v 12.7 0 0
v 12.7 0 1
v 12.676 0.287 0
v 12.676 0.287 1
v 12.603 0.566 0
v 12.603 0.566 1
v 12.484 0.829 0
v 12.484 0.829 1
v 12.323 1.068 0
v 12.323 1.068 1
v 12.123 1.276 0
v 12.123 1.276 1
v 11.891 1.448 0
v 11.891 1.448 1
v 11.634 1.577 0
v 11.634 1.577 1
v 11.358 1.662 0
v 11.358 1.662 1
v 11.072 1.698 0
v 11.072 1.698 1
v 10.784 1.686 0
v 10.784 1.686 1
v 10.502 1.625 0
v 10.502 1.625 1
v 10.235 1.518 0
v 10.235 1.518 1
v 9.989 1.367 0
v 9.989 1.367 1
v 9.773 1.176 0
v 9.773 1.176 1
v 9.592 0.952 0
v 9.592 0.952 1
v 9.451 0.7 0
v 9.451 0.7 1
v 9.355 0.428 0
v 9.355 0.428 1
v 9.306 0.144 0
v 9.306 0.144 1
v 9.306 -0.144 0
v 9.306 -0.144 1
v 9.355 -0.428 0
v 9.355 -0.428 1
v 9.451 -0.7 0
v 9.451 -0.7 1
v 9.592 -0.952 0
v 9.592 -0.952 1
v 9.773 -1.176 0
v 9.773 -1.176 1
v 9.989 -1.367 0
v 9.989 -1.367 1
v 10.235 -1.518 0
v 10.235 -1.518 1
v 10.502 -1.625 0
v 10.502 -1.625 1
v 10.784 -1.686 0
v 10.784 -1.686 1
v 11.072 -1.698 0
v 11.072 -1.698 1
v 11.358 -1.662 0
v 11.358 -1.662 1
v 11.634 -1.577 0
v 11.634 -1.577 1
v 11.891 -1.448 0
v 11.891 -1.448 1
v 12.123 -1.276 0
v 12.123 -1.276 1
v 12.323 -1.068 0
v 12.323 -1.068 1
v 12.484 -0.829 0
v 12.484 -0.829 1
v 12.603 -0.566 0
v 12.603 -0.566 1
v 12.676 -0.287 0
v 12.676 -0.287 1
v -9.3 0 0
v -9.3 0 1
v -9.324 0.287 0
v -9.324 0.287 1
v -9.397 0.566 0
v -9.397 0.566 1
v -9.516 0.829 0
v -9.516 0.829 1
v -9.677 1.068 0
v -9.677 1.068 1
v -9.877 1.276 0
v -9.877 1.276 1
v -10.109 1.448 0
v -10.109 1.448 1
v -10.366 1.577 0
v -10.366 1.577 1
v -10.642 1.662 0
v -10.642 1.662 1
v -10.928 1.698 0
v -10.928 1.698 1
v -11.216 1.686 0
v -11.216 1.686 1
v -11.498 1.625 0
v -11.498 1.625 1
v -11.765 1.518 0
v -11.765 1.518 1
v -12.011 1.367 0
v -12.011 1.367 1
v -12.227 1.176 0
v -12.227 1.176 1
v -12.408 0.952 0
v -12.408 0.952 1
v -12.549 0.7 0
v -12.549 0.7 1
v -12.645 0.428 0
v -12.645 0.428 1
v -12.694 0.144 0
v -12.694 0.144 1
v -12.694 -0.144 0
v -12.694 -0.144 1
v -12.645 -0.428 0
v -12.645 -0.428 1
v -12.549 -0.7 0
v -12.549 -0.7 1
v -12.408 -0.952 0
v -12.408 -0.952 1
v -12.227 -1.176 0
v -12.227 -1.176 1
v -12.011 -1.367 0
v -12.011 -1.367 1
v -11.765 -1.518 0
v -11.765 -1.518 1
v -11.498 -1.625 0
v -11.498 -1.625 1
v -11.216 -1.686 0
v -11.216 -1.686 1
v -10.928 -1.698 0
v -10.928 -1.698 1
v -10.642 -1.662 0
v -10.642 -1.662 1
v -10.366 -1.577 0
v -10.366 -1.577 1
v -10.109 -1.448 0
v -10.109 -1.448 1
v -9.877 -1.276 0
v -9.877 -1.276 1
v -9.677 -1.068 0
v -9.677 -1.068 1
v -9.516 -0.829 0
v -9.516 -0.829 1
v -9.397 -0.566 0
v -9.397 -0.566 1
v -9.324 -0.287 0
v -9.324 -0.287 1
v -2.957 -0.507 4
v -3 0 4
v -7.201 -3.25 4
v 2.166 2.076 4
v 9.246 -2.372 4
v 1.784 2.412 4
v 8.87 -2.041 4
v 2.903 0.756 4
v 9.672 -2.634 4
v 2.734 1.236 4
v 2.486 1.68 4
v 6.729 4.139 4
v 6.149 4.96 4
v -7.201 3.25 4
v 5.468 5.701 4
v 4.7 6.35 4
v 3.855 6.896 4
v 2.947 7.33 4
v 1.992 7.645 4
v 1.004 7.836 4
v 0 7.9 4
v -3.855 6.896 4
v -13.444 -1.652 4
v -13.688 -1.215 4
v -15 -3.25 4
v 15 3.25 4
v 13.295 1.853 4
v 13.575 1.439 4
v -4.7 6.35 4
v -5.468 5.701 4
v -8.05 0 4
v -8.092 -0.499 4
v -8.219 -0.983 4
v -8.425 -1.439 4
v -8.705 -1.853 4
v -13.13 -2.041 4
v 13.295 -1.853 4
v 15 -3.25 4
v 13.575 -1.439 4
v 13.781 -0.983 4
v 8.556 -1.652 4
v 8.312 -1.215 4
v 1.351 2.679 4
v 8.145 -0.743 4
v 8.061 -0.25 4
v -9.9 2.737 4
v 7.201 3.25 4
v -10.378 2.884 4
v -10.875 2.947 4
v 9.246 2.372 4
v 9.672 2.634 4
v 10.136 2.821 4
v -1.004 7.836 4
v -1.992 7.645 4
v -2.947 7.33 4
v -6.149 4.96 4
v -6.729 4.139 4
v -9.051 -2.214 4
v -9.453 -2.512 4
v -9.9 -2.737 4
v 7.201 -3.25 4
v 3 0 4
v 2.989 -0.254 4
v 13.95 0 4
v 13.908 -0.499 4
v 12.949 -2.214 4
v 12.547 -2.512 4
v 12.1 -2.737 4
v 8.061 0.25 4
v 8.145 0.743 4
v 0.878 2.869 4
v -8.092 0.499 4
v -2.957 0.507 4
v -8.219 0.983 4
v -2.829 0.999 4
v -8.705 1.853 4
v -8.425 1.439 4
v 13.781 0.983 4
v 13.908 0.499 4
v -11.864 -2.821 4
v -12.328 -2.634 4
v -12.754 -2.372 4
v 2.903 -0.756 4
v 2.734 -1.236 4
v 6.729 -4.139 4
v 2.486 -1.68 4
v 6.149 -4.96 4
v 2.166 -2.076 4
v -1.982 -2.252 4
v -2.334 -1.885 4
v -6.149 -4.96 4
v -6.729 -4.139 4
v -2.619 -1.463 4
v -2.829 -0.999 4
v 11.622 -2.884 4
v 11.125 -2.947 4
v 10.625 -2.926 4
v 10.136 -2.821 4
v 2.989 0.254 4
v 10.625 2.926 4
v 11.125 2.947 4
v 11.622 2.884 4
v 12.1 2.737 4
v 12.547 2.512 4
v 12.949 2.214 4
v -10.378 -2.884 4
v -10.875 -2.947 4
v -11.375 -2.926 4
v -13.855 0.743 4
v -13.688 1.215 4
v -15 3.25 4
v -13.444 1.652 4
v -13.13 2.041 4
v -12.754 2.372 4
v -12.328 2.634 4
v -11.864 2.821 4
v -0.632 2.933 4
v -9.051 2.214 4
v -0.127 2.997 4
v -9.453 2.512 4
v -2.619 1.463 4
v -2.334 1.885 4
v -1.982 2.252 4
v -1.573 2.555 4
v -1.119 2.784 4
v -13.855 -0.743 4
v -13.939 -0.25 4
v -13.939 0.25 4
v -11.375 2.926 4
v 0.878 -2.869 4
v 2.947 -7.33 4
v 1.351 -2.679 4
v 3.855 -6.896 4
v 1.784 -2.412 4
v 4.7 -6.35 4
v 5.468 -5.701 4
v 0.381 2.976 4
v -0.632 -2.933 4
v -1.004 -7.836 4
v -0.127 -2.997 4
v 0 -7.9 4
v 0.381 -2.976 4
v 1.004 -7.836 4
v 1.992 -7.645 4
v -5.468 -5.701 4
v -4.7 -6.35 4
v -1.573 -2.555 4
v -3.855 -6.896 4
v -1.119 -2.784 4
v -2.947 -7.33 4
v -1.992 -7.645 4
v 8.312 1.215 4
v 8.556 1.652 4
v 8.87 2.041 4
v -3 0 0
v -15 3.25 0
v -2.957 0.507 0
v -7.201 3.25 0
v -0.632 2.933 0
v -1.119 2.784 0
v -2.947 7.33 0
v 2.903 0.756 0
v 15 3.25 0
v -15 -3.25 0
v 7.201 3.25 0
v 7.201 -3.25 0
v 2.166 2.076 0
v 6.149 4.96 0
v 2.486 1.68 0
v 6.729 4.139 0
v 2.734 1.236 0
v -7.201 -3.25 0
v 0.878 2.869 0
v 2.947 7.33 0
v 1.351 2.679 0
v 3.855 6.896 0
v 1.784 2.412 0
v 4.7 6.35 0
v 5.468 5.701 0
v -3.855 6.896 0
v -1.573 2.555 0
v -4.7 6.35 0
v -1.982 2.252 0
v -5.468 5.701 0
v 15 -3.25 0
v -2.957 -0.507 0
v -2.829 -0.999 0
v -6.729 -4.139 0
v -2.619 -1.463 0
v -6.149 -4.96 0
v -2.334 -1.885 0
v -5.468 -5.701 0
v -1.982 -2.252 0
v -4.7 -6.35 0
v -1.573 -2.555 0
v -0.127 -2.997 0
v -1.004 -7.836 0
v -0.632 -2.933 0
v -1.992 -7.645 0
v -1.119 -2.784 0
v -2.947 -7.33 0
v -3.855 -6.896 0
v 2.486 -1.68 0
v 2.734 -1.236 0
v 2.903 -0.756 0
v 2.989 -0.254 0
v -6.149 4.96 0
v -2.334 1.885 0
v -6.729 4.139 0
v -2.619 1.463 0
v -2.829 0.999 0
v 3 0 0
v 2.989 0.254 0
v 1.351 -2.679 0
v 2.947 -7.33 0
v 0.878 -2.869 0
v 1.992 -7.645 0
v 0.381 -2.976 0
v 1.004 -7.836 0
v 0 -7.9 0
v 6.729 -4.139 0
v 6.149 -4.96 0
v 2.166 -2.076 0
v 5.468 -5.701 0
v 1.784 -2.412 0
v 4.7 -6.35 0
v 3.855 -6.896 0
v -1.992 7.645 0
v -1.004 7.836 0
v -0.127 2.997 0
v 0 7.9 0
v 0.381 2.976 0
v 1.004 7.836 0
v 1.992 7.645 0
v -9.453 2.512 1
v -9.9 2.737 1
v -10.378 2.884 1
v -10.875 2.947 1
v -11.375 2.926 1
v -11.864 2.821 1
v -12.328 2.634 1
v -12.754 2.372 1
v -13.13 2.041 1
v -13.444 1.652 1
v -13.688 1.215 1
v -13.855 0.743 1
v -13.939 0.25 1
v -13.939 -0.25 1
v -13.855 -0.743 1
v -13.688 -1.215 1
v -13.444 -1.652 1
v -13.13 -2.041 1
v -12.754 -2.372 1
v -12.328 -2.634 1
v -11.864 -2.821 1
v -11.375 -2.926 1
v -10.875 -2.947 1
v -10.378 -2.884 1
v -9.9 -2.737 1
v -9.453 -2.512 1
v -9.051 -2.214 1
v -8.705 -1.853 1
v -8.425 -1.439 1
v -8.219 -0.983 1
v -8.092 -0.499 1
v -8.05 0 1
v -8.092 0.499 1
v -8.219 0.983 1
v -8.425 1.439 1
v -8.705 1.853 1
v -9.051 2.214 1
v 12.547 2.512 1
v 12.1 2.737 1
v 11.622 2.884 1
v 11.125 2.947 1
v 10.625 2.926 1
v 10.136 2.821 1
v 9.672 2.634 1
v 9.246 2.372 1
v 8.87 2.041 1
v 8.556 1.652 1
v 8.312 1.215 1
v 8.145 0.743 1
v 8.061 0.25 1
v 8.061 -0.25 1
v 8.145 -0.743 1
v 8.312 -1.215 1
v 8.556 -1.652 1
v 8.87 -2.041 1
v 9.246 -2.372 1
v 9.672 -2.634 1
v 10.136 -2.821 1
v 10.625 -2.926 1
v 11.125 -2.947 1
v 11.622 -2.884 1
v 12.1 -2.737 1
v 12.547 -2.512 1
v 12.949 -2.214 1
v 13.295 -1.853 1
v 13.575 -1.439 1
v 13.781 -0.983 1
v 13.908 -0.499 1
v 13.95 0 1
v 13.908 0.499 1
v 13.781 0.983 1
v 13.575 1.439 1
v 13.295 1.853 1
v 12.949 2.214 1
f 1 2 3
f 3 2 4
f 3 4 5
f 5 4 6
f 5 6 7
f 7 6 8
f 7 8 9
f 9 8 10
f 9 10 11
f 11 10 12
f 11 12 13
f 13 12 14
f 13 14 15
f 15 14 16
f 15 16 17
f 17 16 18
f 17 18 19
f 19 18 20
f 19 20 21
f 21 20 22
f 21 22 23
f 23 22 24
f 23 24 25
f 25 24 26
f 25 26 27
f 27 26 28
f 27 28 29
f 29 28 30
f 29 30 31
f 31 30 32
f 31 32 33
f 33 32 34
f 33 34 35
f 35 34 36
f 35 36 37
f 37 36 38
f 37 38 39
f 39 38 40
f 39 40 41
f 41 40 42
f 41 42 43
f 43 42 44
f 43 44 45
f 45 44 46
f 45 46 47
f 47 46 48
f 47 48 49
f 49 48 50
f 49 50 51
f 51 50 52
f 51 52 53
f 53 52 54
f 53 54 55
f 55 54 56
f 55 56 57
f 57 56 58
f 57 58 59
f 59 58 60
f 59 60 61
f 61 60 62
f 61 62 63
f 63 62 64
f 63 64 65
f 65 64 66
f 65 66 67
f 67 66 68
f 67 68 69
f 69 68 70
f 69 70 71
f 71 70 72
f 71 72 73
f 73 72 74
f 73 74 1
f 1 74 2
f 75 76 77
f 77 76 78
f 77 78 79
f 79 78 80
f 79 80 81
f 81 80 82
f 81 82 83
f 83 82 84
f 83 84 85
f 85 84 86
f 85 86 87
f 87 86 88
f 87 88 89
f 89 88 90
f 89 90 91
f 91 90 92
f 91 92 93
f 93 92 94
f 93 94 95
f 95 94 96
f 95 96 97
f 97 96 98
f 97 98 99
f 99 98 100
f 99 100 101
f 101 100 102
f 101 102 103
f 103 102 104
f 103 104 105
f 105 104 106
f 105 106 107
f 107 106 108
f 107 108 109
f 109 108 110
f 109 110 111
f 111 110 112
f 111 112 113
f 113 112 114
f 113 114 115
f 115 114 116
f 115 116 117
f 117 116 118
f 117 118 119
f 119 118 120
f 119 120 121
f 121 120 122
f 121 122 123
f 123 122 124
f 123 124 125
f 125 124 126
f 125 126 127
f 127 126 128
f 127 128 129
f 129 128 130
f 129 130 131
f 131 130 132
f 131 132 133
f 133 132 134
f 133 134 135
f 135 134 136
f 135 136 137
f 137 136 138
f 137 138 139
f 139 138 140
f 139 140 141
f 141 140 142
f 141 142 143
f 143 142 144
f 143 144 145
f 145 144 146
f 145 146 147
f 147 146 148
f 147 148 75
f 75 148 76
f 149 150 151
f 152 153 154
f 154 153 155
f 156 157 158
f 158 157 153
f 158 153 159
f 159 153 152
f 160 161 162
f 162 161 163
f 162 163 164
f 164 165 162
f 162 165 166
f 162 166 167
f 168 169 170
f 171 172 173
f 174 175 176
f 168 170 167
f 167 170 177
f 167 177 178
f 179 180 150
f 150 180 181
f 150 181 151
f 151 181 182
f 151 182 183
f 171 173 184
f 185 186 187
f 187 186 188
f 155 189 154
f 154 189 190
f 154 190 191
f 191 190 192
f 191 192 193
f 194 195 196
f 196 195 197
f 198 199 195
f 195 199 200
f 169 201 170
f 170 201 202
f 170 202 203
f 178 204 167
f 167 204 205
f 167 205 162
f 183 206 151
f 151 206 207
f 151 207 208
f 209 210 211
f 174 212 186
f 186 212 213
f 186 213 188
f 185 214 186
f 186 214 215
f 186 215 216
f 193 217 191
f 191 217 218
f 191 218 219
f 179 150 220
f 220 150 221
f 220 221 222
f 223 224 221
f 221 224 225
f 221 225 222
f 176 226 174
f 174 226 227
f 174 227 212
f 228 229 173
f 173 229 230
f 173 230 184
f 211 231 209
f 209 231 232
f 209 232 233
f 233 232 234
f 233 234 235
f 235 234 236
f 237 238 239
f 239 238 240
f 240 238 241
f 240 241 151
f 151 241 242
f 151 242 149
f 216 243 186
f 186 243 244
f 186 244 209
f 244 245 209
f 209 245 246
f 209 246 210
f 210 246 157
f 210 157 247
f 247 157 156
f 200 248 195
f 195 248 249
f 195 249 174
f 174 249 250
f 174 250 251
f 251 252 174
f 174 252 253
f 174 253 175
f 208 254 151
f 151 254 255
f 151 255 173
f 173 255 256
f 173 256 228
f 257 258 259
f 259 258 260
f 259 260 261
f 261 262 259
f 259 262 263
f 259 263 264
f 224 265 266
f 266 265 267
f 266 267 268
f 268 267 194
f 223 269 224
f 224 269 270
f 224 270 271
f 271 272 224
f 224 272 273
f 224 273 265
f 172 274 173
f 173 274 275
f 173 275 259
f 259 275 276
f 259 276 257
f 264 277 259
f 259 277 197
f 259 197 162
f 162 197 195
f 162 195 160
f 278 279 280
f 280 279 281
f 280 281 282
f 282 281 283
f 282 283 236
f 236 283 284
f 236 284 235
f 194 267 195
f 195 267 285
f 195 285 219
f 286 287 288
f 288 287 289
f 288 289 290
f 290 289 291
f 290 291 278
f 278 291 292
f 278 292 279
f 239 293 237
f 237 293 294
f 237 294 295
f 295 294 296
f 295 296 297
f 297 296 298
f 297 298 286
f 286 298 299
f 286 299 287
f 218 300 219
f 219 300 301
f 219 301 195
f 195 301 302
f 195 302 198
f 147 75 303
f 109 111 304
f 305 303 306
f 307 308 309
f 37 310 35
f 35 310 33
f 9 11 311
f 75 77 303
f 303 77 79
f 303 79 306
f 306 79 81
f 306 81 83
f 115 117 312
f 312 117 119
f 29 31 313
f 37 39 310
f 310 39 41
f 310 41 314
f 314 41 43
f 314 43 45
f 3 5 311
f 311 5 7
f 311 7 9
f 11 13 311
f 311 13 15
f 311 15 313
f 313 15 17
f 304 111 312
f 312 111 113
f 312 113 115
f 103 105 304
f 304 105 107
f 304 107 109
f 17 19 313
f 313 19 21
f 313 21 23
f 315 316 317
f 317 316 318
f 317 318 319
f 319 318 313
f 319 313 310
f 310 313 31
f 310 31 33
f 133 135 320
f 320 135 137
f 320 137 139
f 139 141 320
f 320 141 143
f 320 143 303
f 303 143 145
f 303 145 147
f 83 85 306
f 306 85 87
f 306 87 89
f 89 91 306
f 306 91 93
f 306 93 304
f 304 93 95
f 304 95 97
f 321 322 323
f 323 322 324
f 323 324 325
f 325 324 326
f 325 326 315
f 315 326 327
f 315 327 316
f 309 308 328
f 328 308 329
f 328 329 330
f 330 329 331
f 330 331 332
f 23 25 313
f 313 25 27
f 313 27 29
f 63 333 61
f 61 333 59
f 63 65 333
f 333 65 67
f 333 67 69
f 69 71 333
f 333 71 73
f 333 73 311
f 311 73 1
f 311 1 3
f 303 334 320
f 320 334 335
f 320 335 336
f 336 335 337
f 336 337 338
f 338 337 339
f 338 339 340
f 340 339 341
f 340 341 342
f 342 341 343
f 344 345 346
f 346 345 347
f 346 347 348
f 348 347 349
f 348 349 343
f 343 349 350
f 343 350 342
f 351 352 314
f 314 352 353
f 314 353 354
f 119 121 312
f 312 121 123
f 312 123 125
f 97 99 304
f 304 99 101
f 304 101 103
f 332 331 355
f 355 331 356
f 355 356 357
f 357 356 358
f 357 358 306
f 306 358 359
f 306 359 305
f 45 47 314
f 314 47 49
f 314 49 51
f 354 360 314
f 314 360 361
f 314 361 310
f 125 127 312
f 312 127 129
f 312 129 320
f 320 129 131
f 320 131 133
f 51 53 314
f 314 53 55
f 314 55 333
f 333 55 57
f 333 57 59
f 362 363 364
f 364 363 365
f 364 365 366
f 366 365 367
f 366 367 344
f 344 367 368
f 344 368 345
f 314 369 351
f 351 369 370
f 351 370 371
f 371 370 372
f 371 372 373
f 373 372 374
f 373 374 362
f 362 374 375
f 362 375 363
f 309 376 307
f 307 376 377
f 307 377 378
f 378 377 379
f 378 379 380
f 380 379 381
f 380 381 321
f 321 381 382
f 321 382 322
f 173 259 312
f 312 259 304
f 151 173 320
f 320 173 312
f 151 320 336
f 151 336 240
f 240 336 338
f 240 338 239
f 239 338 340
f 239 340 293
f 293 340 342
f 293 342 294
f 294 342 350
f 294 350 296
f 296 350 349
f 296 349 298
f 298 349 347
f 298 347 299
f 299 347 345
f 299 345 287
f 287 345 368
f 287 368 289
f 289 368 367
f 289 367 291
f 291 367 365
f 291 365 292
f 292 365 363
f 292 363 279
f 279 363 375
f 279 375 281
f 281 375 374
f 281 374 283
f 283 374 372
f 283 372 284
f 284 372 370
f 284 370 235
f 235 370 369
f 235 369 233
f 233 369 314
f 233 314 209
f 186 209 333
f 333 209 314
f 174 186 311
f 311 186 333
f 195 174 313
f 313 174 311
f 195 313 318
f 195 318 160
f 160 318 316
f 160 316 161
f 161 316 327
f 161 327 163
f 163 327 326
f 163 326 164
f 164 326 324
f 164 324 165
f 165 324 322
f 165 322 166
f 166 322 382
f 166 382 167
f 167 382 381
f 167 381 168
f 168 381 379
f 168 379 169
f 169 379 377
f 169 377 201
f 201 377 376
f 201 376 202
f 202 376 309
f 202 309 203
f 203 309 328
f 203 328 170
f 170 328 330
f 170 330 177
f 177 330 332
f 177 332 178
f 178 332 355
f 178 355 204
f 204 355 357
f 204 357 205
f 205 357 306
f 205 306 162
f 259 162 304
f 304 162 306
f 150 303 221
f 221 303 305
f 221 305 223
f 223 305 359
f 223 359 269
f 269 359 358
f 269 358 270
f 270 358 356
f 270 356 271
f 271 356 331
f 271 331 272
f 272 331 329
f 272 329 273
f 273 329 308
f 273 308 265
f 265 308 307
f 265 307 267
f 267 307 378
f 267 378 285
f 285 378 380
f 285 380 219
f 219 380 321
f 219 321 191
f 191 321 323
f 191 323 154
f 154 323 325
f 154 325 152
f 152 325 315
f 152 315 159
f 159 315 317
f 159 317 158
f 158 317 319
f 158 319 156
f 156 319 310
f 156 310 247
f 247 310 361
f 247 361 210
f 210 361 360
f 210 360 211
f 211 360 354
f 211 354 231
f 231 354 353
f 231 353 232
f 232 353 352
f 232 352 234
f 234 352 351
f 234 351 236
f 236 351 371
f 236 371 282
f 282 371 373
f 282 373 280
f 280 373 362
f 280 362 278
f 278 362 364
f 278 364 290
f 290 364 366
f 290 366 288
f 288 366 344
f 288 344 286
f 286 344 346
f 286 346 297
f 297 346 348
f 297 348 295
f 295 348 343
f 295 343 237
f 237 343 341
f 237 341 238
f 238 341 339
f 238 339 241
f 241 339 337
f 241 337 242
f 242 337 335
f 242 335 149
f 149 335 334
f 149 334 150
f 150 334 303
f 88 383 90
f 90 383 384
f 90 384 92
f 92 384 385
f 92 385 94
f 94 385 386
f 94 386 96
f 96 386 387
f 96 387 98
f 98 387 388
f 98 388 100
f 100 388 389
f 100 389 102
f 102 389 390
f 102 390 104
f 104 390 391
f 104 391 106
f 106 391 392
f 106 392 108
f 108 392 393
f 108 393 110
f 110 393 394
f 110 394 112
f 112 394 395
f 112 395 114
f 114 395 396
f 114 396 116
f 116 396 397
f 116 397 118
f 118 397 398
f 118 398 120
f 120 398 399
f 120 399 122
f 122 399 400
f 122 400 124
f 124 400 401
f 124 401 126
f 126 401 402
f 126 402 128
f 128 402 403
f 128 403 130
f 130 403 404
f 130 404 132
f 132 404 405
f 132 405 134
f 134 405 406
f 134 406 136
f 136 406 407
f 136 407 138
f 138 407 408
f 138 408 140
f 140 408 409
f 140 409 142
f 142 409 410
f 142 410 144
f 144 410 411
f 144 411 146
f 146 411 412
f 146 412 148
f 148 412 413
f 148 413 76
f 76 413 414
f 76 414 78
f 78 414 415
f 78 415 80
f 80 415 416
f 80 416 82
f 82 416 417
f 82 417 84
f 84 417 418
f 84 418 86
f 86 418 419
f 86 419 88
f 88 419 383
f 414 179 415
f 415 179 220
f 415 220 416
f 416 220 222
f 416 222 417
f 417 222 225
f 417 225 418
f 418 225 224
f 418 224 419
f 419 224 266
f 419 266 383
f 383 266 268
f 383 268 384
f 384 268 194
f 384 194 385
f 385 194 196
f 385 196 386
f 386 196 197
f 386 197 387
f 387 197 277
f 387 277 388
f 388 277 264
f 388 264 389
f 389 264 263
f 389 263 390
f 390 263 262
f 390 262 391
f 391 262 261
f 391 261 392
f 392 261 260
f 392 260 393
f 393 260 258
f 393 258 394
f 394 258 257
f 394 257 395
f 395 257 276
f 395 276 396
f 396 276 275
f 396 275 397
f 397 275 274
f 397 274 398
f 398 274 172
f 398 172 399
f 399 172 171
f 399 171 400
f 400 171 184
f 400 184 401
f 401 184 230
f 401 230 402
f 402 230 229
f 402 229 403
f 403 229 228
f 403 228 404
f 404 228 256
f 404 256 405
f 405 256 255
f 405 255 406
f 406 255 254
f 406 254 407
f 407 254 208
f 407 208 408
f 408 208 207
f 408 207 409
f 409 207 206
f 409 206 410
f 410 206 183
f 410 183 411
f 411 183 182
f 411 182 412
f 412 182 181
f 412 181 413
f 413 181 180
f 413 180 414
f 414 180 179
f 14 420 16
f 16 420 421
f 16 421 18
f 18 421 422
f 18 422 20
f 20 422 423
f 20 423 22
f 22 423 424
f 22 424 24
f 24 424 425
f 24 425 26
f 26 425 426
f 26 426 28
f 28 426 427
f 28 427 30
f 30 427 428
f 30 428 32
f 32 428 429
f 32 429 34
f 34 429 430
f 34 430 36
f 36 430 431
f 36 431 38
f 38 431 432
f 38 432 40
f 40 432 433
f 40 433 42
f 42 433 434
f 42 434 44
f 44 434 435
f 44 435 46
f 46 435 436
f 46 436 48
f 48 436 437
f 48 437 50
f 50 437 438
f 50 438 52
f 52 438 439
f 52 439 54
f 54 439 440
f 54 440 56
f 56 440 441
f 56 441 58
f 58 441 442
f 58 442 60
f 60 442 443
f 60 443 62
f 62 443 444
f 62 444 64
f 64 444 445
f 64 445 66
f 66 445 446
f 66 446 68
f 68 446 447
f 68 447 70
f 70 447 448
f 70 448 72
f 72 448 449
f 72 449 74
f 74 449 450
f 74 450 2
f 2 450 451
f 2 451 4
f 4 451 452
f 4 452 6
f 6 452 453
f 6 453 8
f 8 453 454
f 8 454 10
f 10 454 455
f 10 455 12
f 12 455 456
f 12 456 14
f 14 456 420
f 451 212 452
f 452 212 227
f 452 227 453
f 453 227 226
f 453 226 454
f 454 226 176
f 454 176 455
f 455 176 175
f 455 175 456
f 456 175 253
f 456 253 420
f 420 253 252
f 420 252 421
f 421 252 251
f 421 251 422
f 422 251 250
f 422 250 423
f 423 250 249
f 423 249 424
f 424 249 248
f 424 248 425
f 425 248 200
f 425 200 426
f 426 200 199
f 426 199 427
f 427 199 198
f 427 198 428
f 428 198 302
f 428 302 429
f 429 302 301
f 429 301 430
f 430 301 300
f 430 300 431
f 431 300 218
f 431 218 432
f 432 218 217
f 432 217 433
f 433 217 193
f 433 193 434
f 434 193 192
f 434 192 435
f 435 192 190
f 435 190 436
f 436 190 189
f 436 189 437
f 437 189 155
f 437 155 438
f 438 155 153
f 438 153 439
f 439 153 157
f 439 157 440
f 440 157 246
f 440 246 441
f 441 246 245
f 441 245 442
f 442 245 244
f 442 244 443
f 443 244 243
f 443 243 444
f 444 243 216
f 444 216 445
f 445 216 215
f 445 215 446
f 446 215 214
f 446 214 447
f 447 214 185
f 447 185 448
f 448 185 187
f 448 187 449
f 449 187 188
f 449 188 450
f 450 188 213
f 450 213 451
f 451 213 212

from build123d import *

# Parameters (mm, degrees)
CROQUIS1_R              = 3
SALIENTE_EXTRUIR1_DEPTH = 4
CROQUIS2_R              = 1.7
CORTAR_EXTRUIR1_DEPTH   = 4
CROQUIS3_R              = 2.95
CORTAR_EXTRUIR2_DEPTH   = 3


with BuildPart() as part:
    # Croquis1 → Saliente-Extruir1 (new body)
    with BuildSketch(Plane.XY):
        with BuildLine():
            Line((-7.200520814, 3.25), (-15, 3.25))
            Line((-15, 3.25), (-15, -3.25))
            Line((-15, -3.25), (-7.200520814, -3.25))
            ThreePointArc((-7.200520814, -3.25), (0, -7.9), (7.200520814, -3.25))
            Line((7.200520814, -3.25), (15, -3.25))
            Line((15, -3.25), (15, 3.25))
            Line((15, 3.25), (7.200520814, 3.25))
            ThreePointArc((7.200520814, 3.25), (0, 7.9), (-7.200520814, 3.25))
        make_face()
        Circle(CROQUIS1_R, mode=Mode.SUBTRACT)
    extrude(amount=SALIENTE_EXTRUIR1_DEPTH)

    # Croquis2 → Cortar-Extruir1 (cut)
    with BuildSketch(Plane.XY.offset(4)):
        with Locations((-11, 0)):
            Circle(CROQUIS2_R)
        with Locations((11, 0)):
            Circle(CROQUIS2_R)
    extrude(amount=-CORTAR_EXTRUIR1_DEPTH, mode=Mode.SUBTRACT)

    # Croquis3 → Cortar-Extruir2 (cut)
    with BuildSketch(Plane.XY.offset(4)):
        with Locations((-11, 0)):
            Circle(CROQUIS3_R)
        with Locations((11, 0)):
            Circle(CROQUIS3_R)
    extrude(amount=-CORTAR_EXTRUIR2_DEPTH, mode=Mode.SUBTRACT)


solid = part.part
